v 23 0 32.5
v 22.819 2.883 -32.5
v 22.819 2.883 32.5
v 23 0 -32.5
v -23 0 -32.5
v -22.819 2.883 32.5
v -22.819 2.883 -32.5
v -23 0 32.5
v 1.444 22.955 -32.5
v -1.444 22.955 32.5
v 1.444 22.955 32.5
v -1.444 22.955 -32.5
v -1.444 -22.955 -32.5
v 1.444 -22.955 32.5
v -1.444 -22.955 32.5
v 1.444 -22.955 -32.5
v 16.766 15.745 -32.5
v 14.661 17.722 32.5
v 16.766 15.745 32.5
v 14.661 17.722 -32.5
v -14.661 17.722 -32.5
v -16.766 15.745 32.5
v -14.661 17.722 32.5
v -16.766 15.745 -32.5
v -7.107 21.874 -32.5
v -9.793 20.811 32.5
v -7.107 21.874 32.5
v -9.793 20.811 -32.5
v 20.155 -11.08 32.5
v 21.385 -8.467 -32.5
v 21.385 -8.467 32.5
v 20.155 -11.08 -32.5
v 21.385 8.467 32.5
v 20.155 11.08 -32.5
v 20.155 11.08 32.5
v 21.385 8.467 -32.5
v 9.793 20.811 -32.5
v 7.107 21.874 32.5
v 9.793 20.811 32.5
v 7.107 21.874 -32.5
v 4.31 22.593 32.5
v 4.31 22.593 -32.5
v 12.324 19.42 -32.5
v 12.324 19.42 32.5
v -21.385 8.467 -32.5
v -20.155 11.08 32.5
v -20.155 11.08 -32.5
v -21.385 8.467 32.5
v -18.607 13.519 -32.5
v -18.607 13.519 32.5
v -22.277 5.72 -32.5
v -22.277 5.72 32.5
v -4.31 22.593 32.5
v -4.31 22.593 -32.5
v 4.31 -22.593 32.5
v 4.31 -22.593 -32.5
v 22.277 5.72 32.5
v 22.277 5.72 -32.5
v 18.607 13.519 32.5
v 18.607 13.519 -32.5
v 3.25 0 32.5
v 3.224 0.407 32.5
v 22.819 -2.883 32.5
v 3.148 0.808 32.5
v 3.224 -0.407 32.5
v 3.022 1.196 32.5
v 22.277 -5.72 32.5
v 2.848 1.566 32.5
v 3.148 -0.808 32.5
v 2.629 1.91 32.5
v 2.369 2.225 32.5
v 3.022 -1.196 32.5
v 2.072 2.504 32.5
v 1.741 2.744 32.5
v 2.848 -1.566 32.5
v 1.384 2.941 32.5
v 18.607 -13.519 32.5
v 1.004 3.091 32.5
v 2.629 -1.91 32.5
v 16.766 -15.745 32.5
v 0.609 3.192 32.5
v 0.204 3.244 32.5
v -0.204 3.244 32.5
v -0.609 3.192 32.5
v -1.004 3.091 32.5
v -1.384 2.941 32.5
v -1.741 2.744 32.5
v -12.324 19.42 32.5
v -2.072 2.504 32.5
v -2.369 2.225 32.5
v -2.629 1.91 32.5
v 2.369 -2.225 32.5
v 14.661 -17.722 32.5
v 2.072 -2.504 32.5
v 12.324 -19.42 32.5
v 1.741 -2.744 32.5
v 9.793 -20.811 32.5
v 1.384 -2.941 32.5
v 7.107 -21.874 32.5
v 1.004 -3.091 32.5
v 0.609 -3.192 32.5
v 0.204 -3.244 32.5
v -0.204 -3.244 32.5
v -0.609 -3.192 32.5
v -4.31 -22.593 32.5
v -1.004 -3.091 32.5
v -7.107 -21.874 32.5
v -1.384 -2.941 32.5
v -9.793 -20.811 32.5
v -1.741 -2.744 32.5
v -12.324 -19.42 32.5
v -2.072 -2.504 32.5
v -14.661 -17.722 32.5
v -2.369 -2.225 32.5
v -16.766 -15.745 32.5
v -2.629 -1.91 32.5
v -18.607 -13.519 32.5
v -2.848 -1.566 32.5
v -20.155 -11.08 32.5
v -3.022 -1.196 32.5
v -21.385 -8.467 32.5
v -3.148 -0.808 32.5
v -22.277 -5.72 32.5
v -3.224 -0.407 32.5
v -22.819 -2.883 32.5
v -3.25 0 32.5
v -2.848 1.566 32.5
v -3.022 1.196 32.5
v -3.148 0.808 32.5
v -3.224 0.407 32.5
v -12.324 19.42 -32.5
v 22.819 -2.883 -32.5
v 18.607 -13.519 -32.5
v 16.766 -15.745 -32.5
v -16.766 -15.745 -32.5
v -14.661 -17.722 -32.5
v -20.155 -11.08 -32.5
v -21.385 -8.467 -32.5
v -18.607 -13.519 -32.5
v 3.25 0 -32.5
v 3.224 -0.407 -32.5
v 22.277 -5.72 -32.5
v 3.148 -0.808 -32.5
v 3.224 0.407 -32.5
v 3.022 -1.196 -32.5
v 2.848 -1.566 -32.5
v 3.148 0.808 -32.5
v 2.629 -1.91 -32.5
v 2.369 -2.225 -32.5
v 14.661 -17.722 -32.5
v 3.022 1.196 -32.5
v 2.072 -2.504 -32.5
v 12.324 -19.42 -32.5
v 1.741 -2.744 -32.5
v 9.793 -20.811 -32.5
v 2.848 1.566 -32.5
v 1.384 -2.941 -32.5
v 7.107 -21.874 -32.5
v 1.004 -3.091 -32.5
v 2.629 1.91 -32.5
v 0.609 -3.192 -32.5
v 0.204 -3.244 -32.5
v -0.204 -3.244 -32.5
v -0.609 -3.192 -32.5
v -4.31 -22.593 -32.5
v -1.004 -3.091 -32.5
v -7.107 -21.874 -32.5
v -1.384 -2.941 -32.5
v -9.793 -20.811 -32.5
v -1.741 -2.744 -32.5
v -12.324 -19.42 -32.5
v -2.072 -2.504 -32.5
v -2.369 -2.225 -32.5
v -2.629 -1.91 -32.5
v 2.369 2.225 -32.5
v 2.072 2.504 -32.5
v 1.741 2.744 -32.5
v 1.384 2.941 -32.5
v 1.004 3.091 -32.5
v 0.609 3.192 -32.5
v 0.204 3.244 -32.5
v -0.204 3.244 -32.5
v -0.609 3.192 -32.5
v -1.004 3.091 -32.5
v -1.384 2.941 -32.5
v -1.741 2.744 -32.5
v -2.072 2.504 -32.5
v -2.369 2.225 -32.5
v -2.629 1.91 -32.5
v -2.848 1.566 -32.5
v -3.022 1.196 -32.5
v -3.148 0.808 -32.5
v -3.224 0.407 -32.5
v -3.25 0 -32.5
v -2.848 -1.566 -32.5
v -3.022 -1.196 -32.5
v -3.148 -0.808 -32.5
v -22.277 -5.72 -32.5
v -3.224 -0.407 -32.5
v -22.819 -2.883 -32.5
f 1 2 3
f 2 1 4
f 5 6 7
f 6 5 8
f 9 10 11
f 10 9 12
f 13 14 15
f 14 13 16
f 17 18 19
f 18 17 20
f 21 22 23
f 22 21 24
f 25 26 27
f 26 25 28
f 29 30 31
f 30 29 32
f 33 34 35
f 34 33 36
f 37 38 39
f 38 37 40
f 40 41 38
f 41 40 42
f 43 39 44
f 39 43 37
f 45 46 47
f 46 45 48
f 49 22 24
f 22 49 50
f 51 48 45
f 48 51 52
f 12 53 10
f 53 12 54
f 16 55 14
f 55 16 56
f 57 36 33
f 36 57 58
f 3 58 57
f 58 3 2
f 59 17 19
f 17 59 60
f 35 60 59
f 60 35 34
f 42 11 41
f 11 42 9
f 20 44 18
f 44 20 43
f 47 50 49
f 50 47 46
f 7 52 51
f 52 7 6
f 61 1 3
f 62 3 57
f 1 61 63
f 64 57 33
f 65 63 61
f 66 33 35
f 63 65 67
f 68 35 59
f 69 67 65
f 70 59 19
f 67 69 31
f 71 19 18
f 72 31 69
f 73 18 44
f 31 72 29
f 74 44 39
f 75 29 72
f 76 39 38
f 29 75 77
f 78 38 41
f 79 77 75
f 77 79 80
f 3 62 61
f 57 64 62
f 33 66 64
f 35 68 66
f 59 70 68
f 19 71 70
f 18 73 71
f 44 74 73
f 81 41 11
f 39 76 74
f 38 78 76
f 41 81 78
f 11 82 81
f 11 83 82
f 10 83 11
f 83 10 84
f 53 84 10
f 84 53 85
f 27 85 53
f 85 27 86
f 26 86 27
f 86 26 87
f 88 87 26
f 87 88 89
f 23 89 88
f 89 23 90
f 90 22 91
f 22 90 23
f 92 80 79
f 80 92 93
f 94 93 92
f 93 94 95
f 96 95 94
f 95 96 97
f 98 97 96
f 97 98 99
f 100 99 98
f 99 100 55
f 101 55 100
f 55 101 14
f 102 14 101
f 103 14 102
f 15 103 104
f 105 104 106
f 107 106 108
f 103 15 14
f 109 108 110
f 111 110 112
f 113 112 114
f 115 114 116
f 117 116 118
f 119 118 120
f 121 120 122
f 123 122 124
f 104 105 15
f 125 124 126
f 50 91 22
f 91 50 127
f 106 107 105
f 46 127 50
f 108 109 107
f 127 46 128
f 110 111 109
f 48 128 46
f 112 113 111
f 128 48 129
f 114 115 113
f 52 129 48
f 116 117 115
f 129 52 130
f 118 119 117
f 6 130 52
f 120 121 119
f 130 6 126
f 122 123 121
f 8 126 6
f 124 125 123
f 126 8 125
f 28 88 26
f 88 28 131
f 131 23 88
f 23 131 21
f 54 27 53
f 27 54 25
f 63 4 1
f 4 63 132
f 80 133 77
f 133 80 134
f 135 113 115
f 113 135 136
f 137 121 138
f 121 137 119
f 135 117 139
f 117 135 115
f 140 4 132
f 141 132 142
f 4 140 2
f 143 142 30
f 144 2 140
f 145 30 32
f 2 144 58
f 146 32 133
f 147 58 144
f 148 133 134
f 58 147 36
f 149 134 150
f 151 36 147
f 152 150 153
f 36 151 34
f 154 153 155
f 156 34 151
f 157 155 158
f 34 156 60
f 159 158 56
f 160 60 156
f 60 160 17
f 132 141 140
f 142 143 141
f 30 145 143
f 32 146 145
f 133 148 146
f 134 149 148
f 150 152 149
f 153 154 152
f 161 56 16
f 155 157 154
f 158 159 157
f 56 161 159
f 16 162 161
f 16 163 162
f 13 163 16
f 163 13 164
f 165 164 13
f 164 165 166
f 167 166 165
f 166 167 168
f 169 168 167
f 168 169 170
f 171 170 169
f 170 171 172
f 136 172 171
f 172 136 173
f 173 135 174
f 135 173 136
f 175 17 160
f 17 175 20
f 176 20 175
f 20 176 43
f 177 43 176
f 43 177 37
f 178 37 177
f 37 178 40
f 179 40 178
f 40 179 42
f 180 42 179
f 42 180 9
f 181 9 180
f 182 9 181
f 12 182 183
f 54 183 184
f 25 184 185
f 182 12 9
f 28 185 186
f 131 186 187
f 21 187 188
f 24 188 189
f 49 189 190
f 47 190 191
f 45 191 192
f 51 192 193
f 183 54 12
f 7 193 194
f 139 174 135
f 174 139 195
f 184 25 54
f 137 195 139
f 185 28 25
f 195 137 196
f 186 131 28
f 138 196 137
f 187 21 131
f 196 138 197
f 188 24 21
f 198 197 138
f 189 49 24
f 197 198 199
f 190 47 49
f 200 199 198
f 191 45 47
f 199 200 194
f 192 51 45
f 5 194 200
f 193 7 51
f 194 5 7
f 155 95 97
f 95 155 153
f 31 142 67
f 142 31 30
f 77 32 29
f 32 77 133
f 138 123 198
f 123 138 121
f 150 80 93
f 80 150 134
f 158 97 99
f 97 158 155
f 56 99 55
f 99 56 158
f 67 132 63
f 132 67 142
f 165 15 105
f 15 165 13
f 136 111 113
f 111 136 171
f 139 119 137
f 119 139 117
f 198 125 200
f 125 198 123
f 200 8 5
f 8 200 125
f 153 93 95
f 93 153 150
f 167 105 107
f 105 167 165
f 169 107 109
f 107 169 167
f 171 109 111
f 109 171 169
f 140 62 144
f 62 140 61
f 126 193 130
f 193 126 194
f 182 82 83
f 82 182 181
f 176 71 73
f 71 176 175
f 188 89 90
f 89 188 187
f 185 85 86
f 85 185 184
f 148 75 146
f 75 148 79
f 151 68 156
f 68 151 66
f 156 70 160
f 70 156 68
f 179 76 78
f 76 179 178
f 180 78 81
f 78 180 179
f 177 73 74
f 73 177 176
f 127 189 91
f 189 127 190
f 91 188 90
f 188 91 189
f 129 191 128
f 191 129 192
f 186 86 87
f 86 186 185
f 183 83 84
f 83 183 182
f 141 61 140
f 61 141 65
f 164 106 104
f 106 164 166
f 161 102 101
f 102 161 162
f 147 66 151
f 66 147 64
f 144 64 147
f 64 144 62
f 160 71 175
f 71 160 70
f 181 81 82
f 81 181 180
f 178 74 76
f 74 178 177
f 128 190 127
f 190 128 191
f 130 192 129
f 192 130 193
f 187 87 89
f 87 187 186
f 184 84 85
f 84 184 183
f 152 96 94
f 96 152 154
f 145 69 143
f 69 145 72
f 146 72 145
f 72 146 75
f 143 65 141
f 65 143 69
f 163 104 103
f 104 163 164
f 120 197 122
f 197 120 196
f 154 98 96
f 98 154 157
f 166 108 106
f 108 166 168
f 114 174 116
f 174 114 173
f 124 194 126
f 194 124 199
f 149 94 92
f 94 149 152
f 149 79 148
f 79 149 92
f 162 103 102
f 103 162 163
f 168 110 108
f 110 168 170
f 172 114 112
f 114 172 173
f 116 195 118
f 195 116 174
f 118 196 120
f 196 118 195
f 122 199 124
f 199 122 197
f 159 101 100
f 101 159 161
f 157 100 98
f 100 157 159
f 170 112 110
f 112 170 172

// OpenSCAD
$fn = 50;


difference() {
	union() {
		translate(v = [0, 0, -32.5000000000]) {
			cylinder(h = 65, r = 23.0000000000);
		}
	}
	union() {
		translate(v = [0, 0, -100.0000000000]) {
			cylinder(h = 200, r = 3.2500000000);
		}
	}
}
